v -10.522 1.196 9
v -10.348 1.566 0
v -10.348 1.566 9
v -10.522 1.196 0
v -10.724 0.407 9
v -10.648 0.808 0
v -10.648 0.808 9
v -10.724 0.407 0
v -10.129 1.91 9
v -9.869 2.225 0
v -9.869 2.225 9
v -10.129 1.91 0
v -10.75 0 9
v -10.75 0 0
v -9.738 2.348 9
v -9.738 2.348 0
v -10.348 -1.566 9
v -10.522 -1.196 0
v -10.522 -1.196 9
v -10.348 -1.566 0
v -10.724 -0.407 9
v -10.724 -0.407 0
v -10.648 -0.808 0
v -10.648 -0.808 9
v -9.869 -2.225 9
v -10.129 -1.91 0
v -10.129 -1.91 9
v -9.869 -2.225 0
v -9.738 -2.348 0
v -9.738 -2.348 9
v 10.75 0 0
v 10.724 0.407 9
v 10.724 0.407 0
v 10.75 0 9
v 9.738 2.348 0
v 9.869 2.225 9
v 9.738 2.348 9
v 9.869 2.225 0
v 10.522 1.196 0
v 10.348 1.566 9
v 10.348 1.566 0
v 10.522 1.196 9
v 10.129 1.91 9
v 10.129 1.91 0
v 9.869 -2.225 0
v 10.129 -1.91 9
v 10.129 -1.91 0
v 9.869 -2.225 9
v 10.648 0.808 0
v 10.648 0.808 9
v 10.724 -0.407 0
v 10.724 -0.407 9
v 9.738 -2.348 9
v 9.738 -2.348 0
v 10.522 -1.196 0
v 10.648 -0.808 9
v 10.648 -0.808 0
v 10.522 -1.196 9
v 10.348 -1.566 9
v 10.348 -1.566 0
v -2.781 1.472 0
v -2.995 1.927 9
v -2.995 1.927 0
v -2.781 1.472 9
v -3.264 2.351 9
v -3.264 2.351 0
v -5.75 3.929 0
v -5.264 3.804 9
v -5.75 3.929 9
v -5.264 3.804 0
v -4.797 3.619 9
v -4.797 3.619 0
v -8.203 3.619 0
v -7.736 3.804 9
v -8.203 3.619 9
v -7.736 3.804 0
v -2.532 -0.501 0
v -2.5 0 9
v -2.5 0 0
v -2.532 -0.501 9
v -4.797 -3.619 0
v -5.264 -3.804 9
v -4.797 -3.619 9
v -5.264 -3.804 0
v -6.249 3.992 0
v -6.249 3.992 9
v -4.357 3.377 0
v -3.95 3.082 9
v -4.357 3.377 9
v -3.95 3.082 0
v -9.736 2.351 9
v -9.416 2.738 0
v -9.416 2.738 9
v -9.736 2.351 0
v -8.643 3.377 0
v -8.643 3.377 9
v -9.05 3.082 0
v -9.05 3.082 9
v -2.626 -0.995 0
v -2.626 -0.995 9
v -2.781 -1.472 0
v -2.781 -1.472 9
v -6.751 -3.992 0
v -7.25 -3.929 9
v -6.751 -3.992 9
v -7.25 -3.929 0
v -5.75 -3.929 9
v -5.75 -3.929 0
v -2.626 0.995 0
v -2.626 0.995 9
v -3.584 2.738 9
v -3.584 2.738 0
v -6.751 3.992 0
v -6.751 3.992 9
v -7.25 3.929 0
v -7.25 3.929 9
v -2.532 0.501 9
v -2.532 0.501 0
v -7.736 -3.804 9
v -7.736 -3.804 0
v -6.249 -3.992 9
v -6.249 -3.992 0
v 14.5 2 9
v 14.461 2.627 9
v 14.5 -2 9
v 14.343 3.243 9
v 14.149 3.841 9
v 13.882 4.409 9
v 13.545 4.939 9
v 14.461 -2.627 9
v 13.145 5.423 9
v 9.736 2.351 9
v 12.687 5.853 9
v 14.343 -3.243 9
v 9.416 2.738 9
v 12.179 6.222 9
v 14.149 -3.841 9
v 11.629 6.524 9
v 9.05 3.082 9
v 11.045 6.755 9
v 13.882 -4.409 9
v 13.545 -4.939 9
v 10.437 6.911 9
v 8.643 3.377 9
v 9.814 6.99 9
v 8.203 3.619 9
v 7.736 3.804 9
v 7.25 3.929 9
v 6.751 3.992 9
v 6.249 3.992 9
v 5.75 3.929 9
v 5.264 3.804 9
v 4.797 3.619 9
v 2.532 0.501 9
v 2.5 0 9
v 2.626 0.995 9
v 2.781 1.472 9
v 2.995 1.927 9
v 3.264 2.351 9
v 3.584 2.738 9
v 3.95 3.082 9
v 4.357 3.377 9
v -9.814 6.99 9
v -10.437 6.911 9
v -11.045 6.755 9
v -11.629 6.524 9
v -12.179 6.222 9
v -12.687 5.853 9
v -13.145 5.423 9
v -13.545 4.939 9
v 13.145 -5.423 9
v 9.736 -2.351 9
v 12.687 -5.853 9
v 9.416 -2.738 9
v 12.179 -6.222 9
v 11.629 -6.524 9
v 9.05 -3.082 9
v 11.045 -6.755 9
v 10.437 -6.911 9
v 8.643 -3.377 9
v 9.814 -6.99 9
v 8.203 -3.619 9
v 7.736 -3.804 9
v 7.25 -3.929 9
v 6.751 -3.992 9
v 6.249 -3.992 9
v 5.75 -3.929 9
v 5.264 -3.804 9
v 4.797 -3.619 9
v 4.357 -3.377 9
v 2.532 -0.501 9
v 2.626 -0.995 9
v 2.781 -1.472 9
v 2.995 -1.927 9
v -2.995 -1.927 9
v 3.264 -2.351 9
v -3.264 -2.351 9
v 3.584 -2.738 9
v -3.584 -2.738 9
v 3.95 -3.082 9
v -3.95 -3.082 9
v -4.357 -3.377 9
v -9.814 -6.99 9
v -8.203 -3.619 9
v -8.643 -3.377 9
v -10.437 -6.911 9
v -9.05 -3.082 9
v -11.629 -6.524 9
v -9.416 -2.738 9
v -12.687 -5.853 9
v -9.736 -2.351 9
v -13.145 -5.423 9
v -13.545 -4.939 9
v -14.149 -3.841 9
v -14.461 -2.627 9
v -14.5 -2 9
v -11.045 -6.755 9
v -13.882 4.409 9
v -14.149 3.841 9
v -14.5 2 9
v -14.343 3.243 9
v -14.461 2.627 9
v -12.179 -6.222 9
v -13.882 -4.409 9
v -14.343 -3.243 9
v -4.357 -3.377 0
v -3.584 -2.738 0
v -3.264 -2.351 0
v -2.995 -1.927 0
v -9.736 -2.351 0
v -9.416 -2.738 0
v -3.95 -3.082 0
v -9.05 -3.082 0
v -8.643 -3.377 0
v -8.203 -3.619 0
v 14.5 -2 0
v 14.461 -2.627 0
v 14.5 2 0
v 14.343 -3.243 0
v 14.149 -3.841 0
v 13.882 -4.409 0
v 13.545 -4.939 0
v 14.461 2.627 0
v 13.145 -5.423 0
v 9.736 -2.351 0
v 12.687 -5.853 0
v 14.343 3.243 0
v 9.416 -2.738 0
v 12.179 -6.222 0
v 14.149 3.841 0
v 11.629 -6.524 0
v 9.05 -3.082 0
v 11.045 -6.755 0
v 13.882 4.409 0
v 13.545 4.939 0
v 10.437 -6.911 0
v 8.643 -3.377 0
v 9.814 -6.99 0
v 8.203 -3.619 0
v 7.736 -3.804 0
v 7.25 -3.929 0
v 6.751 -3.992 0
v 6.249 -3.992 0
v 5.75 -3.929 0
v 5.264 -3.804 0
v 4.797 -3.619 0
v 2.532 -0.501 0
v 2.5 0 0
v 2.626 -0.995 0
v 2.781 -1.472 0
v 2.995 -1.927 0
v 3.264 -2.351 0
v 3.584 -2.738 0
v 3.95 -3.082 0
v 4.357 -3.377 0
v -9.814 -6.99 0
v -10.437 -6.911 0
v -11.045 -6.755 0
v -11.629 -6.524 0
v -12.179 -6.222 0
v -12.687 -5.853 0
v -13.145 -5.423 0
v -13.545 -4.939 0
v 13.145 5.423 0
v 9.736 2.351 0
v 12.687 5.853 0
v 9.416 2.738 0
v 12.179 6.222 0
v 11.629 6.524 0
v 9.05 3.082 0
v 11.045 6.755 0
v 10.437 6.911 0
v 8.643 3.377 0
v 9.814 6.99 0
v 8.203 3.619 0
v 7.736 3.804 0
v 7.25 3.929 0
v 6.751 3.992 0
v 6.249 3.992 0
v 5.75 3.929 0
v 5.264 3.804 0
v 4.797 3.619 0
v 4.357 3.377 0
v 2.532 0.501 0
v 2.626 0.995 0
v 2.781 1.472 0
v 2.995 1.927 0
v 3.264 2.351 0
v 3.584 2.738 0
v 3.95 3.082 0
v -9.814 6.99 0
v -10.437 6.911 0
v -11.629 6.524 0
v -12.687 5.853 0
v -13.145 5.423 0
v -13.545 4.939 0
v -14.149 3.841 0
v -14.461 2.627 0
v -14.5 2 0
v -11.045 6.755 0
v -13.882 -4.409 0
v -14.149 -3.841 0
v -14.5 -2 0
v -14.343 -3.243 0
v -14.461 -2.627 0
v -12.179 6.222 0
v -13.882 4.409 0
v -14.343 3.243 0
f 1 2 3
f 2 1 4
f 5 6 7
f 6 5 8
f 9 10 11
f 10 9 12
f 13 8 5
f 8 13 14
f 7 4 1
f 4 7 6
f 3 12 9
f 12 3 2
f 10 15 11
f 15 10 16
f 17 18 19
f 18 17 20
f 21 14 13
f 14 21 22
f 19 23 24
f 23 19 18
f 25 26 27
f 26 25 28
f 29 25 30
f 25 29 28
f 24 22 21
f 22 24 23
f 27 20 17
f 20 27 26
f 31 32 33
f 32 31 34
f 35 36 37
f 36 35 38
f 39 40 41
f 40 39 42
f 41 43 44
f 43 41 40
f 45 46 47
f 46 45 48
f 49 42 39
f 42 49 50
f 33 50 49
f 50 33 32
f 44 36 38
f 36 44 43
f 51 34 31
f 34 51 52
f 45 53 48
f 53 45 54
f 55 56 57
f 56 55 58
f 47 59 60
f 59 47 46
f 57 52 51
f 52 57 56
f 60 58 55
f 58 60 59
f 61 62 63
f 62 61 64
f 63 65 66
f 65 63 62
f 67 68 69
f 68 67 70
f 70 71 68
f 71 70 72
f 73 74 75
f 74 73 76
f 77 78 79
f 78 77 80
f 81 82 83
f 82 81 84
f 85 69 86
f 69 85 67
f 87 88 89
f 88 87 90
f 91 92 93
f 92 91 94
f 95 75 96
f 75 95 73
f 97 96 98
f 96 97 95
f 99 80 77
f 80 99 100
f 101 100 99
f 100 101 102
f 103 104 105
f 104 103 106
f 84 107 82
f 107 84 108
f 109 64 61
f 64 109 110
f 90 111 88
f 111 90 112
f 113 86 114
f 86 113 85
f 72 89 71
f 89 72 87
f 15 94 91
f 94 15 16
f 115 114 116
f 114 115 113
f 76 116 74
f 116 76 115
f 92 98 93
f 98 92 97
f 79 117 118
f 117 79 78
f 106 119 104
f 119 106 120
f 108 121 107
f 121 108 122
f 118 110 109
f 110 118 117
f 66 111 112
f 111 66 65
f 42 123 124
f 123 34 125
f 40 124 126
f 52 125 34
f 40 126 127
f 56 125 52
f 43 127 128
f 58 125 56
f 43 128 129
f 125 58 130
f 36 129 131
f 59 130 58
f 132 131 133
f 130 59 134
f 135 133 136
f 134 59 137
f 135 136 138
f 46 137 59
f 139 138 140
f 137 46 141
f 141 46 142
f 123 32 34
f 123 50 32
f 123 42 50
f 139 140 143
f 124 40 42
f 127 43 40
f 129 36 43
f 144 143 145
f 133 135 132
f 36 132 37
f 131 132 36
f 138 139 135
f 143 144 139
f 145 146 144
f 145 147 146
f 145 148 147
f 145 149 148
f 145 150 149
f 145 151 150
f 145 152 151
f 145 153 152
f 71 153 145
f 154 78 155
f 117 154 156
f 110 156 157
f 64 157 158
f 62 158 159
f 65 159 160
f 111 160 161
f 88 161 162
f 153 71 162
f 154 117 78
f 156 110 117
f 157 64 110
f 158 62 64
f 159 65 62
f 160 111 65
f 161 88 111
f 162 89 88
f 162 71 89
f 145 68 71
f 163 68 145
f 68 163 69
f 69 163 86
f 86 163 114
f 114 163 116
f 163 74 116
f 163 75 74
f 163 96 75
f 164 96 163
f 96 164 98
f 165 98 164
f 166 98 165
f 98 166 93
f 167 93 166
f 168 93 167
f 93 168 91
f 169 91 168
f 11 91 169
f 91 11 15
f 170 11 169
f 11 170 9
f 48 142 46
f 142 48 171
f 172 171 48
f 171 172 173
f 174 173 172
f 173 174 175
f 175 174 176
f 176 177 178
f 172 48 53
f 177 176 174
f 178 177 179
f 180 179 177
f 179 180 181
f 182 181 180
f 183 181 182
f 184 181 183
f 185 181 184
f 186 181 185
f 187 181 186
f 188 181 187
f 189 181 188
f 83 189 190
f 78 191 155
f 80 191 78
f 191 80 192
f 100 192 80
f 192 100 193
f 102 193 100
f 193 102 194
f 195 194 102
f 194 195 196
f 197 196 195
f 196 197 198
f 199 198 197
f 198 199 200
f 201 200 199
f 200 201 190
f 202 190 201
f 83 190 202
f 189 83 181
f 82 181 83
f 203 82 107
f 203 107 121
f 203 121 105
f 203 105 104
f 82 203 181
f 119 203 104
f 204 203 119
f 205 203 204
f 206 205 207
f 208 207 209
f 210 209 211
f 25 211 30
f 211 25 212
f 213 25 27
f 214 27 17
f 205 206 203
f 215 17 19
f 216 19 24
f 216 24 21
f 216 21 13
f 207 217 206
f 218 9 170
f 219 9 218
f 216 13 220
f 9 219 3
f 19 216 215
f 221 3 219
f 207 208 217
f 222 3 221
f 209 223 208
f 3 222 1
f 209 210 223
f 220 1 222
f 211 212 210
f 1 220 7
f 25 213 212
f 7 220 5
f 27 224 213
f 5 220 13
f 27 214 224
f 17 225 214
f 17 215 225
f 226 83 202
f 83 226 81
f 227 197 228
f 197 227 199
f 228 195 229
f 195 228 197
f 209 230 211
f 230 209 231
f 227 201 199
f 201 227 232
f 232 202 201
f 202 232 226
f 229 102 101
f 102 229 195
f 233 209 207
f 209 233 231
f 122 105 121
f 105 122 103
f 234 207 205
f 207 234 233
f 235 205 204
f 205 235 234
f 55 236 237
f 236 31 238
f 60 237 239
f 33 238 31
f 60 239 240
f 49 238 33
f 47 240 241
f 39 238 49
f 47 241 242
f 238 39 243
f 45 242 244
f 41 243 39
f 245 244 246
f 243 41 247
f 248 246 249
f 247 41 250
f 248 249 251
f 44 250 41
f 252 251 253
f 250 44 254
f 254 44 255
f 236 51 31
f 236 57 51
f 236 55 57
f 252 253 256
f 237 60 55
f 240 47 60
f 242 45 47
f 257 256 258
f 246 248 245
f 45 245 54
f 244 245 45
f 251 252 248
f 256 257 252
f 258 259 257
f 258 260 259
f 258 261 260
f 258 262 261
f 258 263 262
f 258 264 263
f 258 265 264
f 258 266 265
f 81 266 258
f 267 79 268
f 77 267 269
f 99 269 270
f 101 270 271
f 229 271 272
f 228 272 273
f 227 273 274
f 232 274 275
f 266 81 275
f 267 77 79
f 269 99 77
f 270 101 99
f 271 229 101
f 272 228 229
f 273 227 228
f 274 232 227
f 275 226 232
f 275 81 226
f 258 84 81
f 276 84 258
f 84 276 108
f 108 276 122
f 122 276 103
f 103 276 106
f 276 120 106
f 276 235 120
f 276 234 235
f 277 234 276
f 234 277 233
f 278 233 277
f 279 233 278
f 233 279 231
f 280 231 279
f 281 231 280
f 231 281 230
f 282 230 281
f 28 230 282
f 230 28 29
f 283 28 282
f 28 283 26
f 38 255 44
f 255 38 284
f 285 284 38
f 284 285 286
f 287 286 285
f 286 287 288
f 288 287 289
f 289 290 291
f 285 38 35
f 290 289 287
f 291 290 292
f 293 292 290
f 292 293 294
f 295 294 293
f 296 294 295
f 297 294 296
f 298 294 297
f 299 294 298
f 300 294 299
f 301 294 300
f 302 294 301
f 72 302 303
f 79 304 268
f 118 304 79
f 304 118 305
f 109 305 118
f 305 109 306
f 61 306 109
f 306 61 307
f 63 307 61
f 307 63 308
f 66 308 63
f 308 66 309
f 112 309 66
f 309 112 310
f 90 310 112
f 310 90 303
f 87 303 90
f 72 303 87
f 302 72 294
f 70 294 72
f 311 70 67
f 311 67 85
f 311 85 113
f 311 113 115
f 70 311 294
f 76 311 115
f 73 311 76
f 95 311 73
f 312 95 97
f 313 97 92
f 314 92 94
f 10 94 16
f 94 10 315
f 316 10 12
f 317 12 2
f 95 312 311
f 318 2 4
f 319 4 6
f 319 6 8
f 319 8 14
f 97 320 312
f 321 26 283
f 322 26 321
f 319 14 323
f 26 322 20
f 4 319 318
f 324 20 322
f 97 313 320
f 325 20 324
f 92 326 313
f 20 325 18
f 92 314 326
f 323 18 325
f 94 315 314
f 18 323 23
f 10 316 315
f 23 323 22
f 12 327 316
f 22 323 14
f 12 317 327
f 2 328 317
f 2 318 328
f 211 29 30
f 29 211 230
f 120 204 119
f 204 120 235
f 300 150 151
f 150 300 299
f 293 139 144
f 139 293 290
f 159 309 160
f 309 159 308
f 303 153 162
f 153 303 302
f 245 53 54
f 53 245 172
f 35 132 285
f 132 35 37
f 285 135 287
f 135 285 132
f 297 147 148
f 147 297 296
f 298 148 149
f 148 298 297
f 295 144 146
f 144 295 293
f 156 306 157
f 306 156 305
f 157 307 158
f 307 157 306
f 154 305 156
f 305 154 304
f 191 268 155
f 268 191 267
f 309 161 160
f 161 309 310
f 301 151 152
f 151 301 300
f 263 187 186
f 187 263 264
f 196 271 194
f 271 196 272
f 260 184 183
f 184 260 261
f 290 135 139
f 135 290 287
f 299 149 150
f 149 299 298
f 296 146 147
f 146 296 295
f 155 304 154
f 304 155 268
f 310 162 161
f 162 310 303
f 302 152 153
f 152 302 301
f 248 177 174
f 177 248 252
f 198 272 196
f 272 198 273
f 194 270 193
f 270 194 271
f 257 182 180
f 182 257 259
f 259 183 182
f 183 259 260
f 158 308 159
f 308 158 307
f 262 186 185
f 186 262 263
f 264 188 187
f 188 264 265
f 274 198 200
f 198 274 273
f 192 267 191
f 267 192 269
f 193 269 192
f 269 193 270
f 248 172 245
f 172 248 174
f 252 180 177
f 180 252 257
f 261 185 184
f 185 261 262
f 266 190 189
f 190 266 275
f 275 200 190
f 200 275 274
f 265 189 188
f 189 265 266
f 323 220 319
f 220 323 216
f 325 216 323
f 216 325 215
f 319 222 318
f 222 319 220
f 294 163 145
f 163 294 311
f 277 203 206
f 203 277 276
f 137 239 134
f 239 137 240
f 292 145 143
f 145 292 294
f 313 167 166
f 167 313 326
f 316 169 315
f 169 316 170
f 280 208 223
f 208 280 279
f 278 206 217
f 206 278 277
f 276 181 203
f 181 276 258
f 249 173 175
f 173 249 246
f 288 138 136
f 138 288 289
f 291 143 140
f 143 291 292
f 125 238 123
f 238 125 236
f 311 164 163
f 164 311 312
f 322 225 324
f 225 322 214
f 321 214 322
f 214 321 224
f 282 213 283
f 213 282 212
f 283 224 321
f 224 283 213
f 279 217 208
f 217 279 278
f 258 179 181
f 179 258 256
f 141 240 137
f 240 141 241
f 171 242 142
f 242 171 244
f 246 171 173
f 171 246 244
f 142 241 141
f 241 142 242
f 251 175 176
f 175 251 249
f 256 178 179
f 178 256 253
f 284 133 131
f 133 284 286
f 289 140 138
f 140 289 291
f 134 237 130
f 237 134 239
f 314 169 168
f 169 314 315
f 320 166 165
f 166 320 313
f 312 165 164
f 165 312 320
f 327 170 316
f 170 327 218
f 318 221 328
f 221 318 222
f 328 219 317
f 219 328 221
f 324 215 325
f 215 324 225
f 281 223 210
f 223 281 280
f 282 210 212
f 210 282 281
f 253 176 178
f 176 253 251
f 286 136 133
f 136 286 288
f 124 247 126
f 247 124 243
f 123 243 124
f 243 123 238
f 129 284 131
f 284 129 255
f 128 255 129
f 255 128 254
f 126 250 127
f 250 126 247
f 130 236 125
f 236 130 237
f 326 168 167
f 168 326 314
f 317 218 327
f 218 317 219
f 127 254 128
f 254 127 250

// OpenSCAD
$fn = 50;


difference() {
	union() {
		hull() {
			translate(v = [-9.5000000000, 2.0000000000, 0]) {
				cylinder(h = 9, r = 5);
			}
			translate(v = [9.5000000000, 2.0000000000, 0]) {
				cylinder(h = 9, r = 5);
			}
			translate(v = [-9.5000000000, -2.0000000000, 0]) {
				cylinder(h = 9, r = 5);
			}
			translate(v = [9.5000000000, -2.0000000000, 0]) {
				cylinder(h = 9, r = 5);
			}
		}
	}
	union() {
		#translate(v = [-7.5000000000, 0.0000000000, -100.0000000000]) {
			cylinder(h = 200, r = 3.2500000000);
		}
		#translate(v = [-7.5000000000, 0.0000000000, -100.0000000000]) {
			cylinder(h = 200, r = 3.2500000000);
		}
		#translate(v = [7.5000000000, 0.0000000000, -100.0000000000]) {
			cylinder(h = 200, r = 3.2500000000);
		}
		#translate(v = [7.5000000000, 0.0000000000, -100.0000000000]) {
			cylinder(h = 200, r = 3.2500000000);
		}
		#translate(v = [-6.5000000000, 0, 0]) {
			cylinder(h = 9, r = 4.0000000000);
		}
		#translate(v = [6.5000000000, 0, 0]) {
			cylinder(h = 9, r = 4.0000000000);
		}
	}
}
